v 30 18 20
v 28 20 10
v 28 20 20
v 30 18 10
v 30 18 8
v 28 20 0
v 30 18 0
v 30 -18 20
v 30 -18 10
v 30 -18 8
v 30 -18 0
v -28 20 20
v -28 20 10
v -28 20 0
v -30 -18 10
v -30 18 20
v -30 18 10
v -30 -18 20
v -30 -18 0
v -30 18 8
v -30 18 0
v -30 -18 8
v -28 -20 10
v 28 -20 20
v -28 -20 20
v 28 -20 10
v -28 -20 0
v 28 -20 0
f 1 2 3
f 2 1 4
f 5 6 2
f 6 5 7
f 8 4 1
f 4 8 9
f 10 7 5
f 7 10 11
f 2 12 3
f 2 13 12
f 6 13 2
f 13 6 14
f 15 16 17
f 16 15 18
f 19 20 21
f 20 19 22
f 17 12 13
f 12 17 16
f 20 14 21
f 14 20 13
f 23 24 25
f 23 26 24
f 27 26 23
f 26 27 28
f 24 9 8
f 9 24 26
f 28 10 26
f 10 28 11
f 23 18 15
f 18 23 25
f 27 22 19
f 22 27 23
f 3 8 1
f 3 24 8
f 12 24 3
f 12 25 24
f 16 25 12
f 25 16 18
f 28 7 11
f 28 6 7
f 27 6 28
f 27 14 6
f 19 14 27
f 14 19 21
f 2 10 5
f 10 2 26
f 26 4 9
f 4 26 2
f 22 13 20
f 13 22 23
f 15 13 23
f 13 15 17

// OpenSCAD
/* doodle-meta {"version":1,"parameters":{"width":{"label":"Overall width","description":"Changes the body width along X","unit":"mm","feature":"body_width"},"depth":{"label":"Overall depth","description":"Changes the body depth along Y","unit":"mm","feature":"body_depth"},"height":{"label":"Overall height","description":"Changes the body height along Z","unit":"mm","feature":"body_height"},"chamfer_size":{"label":"Chamfer size","description":"Size of the 45-degree chamfer on all edges","unit":"mm","feature":"chamfer"}},"features":{"body_width":{"kind":"dimension","axis":"x","label":"Overall width"},"body_depth":{"kind":"dimension","axis":"y","label":"Overall depth"},"body_height":{"kind":"dimension","axis":"z","label":"Overall height"},"chamfer":{"kind":"region","label":"Edge Chamfers","min":[0,0,0],"max":[{"parameter":"width","scale":1,"offset":0},{"parameter":"depth","scale":1,"offset":0},{"parameter":"height","scale":1,"offset":0}]}}} */

// Parameters
width = 60.0;
depth = 40.0;
height = 20.0;
chamfer_size = 2.0;

// Derived constants
eps = 0.01;

// Module for a single chamfer cutter (a triangular prism)
// The prism is oriented such that its triangular cross-section is in the XY plane
// and it extends along Z.
// It cuts the corner at (x_sign * width/2, y_sign * depth/2).
module chamfer_cutter(x_sign, y_sign) {
    // Define the triangle vertices in the local XY plane relative to the corner
    // The corner is at (x_sign * width/2, y_sign * depth/2)
    // The cut removes material inside the triangle defined by:
    // (cx, cy), (cx - x_sign*chamfer_size, cy), (cx, cy - y_sign*chamfer_size)
    
    cx = x_sign * width / 2;
    cy = y_sign * depth / 2;
    
    // Points of the triangle
    p1 = [cx, cy];
    p2 = [cx - x_sign * chamfer_size, cy];
    p3 = [cx, cy - y_sign * chamfer_size];
    
    // Create the polygon and extrude it along Z
    // We need to extend the cutter beyond the block in Z to ensure clean cuts
    translate([0, 0, -eps])
    linear_extrude(height = height + 2*eps)
    polygon([p1, p2, p3]);
}

// Module for a chamfer cutter on a horizontal edge (parallel to X or Y)
// This creates a triangular prism oriented to cut a top or bottom edge.
// axis: 0 for X-axis edge, 1 for Y-axis edge
// sign: +1 or -1 indicating which side of the block the edge is on
module edge_chamfer(axis, sign) {
    // The chamfer is a triangular prism.
    // For an edge parallel to X (axis=0), the triangle is in the YZ plane.
    // For an edge parallel to Y (axis=1), the triangle is in the XZ plane.
    
    if (axis == 0) {
        // Edge parallel to X. Triangle in YZ plane.
        // Edge is at y = sign * depth/2, z = sign * height/2 (top/bottom)
        // Wait, sign determines top/bottom (Z) and front/back (Y).
        // Let's define the triangle vertices in YZ.
        // Corner is at (y=sign_y*depth/2, z=sign_z*height/2).
        // But here 'sign' is passed as +1 for top/front, -1 for bottom/back?
        // Let's simplify: we need to cut 4 top edges and 4 bottom edges.
        
        // Let's use a generic approach: create a cube and rotate it.
        // A 45 deg chamfer can be made by cutting a corner of a cube.
        
        // Let's stick to the previous logic but generalized.
        // We need to cut the corner defined by two faces.
        
        // For Top-Front edge (Y+, Z+):
        // Triangle in YZ plane at Y=depth/2, Z=height/2.
        // Vertices: (depth/2, height/2), (depth/2 - cs, height/2), (depth/2, height/2 - cs)
        
        // Let's implement specific cutters for the 8 horizontal edges.
    }
}

// Helper to cut a corner defined by two axes and signs
// axis1, axis2: 0=X, 1=Y, 2=Z
// s1, s2: +1 or -1
module corner_chamfer_3d(axis1, axis2, s1, s2) {
    // Determine the plane of the triangle and the extrusion axis
    // The extrusion axis is the one NOT in {axis1, axis2}
    ext_axis = 3 - axis1 - axis2; // 0+1+2=3
    
    // Define the triangle in the local 2D plane of axis1, axis2
    // The corner is at (s1 * dim1/2, s2 * dim2/2)
    // The triangle vertices are:
    // (c1, c2)
    // (c1 - s1*cs, c2)
    // (c1, c2 - s2*cs)
    
    dim1 = (axis1 == 0) ? width : (axis1 == 1) ? depth : height;
    dim2 = (axis2 == 0) ? width : (axis2 == 1) ? depth : height;
    ext_dim = (ext_axis == 0) ? width : (ext_axis == 1) ? depth : height;
    
    c1 = s1 * dim1 / 2;
    c2 = s2 * dim2 / 2;
    
    p1 = [c1, c2];
    p2 = [c1 - s1 * chamfer_size, c2];
    p3 = [c1, c2 - s2 * chamfer_size];
    
    // Create polygon in XY plane (local)
    // Then rotate to align with axis1, axis2
    // Then translate to center
    // Then extrude along ext_axis
    
    // Rotation logic:
    // If ext_axis is Z (2), no rotation needed (polygon is in XY).
    // If ext_axis is Y (1), rotate X by 90. Polygon in XZ -> Y extrusion? 
    //   Standard linear_extrude is along Z.
    //   If we want extrusion along Y, we rotate the object so Z becomes Y.
    //   rotate([90, 0, 0]) maps Z to -Y? No, Z to Y?
    //   Let's just use rotate_extrude or careful rotations.
    
    // Simpler: Create the prism in a standard orientation and rotate/translate.
    // Standard: Triangle in XY, extruded along Z.
    // We want: Triangle in Plane(axis1, axis2), extruded along ext_axis.
    
    // Let's map (axis1, axis2) to (X, Y) and ext_axis to Z.
    
    // Case 1: ext_axis = Z (2). axis1, axis2 are X, Y.
    //   No rotation.
    // Case 2: ext_axis = Y (1). axis1, axis2 are X, Z.
    //   We want triangle in XZ, extruded along Y.
    //   Create triangle in XY (local), extrude along Z (local).
    //   Rotate so local Z -> global Y. rotate([90, 0, 0])? 
    //   rotate([90,0,0]) maps Y->Z, Z->-Y. So extrusion along -Y.
    //   We need to handle signs carefully.
    
    // Let's use a different approach: Minkowski difference or just explicit cutters.
    // Given the complexity of generic rotation, let's write explicit cutters for the 12 edges.
    
    // 4 Vertical Edges (parallel to Z): Triangle in XY, extrude Z.
    // 4 Top Edges (parallel to X/Y): Triangle in YZ/XZ, extrude X/Y.
    // 4 Bottom Edges (parallel to X/Y): Triangle in YZ/XZ, extrude X/Y.
}

// Explicit Cutters

// 1. Vertical Edges (4)
// Already implemented in chamfer_cutter
module vertical_chamfers() {
    chamfer_cutter(1, 1);
    chamfer_cutter(-1, 1);
    chamfer_cutter(1, -1);
    chamfer_cutter(-1, -1);
}

// 2. Top Edges (4)
// Top-Front (Y+, Z+) -> Edge parallel to X. Triangle in YZ.
module top_front_chamfer() {
    // Triangle in YZ plane.
    // Corner at Y=depth/2, Z=height/2.
    // Vertices: (depth/2, height/2), (depth/2 - cs, height/2), (depth/2, height/2 - cs)
    // Extrude along X.
    // Create polygon in XY (local), rotate to YZ, extrude along Z (local) -> X (global).
    
    // Polygon in local XY:
    // p1 = [depth/2, height/2]
    // p2 = [depth/2 - cs, height/2]
    // p3 = [depth/2, height/2 - cs]
    
    // Rotate [90, 0, 0] maps local Y to global Z, local Z to global -Y?
    // Let's use rotate([0, 90, 0])?
    // rotate([0, 90, 0]) maps local X to global Z, local Z to global -X.
    
    // Let's just use linear_extrude and rotate.
    // We want the prism axis along X.
    // So we create the triangle in YZ, and extrude along X.
    // linear_extrude extrudes along Z.
    // So we create triangle in XY, extrude along Z, then rotate so Z->X.
    // rotate([0, 90, 0]) maps Z to -X.
    // So we need to mirror or adjust.
    
    // Let's define the triangle in the plane perpendicular to X.
    // The plane is YZ.
    // We can use `rotate([0, 90, 0])` to make the extrusion direction X.
    // But the triangle coordinates need to be in the plane perpendicular to the extrusion axis.
    
    // Let's try:
    // translate([0, 0, 0])
    // rotate([0, 90, 0])
    // linear_extrude(height=width+2*eps)
    // polygon(...)
    
    // If we rotate([0, 90, 0]), the local Z becomes global -X.
    // The local XY plane becomes global ZY plane?
    // Local X -> Global Z. Local Y -> Global Y.
    // So the polygon is in Global ZY.
    // We want the triangle in YZ.
    // So we define points in (Y, Z) coordinates?
    // If local X maps to Global Z, and local Y maps to Global Y.
    // Then point (x, y) in polygon becomes (y, x) in (Y, Z)?
    // Let's verify.
    // rotate([0, 90, 0]) * [x, y, z] = [z, y, -x].
    // So local (x, y, 0) -> global (0, y, -x).
    // So local X is Global -Z. Local Y is Global Y.
    // So polygon in local XY maps to Global YZ (with Z flipped).
    
    // We want triangle at Y=depth/2, Z=height/2.
    // Vertices in Global YZ:
    // (depth/2, height/2)
    // (depth/2 - cs, height/2)
    // (depth/2, height/2 - cs)
    
    // Map to Local XY:
    // Global Y = Local Y.
    // Global Z = -Local X.
    // So Local X = -Global Z.
    
    // p1: Y=depth/2, Z=height/2 -> Local ( -height/2, depth/2 )
    // p2: Y=depth/2-cs, Z=height/2 -> Local ( -height/2, depth/2-cs )
    // p3: Y=depth/2, Z=height/2-cs -> Local ( -(height/2-cs), depth/2 )
    
    // Extrude along Local Z (which is Global -X).
    // We need to cover the whole width.
    // Translate to center X.
    
    translate([width/2 + eps, 0, 0]) // Start from +X side?
    // If extrusion is along -X, we start at +X and go to -X.
    // So translate to +X end.
    
    rotate([0, 90, 0])
    translate([0, 0, -eps]) // Extend in local Z (global -X)
    linear_extrude(height = width + 2*eps)
    polygon([
        [-height/2, depth/2],
        [-height/2, depth/2 - chamfer_size],
        [-(height/2 - chamfer_size), depth/2]
    ]);
}

// Top-Back (Y-, Z+) -> Edge parallel to X.
module top_back_chamfer() {
    // Corner at Y=-depth/2, Z=height/2.
    // Vertices in Global YZ:
    // (-depth/2, height/2)
    // (-depth/2 + cs, height/2)
    // (-depth/2, height/2 - cs)
    
    // Map to Local XY (Local X = -Global Z, Local Y = Global Y)
    // p1: (-height/2, -depth/2)
    // p2: (-height/2, -depth/2 + cs)
    // p3: (-(height/2 - cs), -depth/2)
    
    translate([width/2 + eps, 0, 0])
    rotate([0, 90, 0])
    translate([0, 0, -eps])
    linear_extrude(height = width + 2*eps)
    polygon([
        [-height/2, -depth/2],
        [-height/2, -depth/2 + chamfer_size],
        [-(height/2 - chamfer_size), -depth/2]
    ]);
}

// Top-Right (X+, Z+) -> Edge parallel to Y.
module top_right_chamfer() {
    // Corner at X=width/2, Z=height/2.
    // Vertices in Global XZ:
    // (width/2, height/2)
    // (width/2 - cs, height/2)
    // (width/2, height/2 - cs)
    
    // Extrude along Y.
    // Rotate so Z->Y. rotate([90, 0, 0]) maps Z->-Y?
    // rotate([90, 0, 0]) * [x, y, z] = [x, -z, y].
    // Local Z -> Global Y.
    // Local X -> Global X. Local Y -> Global -Z.
    // So polygon in Local XY maps to Global X(-Z).
    // We want triangle in XZ.
    // Global X = Local X. Global Z = -Local Y.
    
    // p1: (width/2, height/2) -> Local (width/2, -height/2)
    // p2: (width/2 - cs, height/2) -> Local (width/2 - cs, -height/2)
    // p3: (width/2, height/2 - cs) -> Local (width/2, -(height/2 - cs))
    
    // Extrude along Local Z (Global Y).
    // Translate to +Y end.
    
    translate([0, depth/2 + eps, 0])
    rotate([90, 0, 0])
    translate([0, 0, -eps])
    linear_extrude(height = depth + 2*eps)
    polygon([
        [width/2, -height/2],
        [width/2 - chamfer_size, -height/2],
        [width/2, -(height/2 - chamfer_size)]
    ]);
}

// Top-Left (X-, Z+) -> Edge parallel to Y.
module top_left_chamfer() {
    // Corner at X=-width/2, Z=height/2.
    // Vertices in Global XZ:
    // (-width/2, height/2)
    // (-width/2 + cs, height/2)
    // (-width/2, height/2 - cs)
    
    // Map to Local XY (Local X = Global X, Local Y = -Global Z)
    // p1: (-width/2, -height/2)
    // p2: (-width/2 + cs, -height/2)
    // p3: (-width/2, -(height/2 - cs))
    
    translate([0, depth/2 + eps, 0])
    rotate([90, 0, 0])
    translate([0, 0, -eps])
    linear_extrude(height = depth + 2*eps)
    polygon([
        [-width/2, -height/2],
        [-width/2 + chamfer_size, -height/2],
        [-width/2, -(height/2 - chamfer_size)]
    ]);
}

// Bottom Edges (4)
// Bottom-Front (Y+, Z-)
module bottom_front_chamfer() {
    // Corner at Y=depth/2, Z=-height/2.
    // Vertices in Global YZ:
    // (depth/2, -height/2)
    // (depth/2 - cs, -height/2)
    // (depth/2, -height/2 + cs)
    
    // Map to Local XY (Local X = -Global Z, Local Y = Global Y)
    // p1: (height/2, depth/2)
    // p2: (height/2, depth/2 - cs)
    // p3: (height/2 - cs, depth/2)
    
    translate([width/2 + eps, 0, 0])
    rotate([0, 90, 0])
    translate([0, 0, -eps])
    linear_extrude(height = width + 2*eps)
    polygon([
        [height/2, depth/2],
        [height/2, depth/2 - chamfer_size],
        [height/2 - chamfer_size, depth/2]
    ]);
}

// Bottom-Back (Y-, Z-)
module bottom_back_chamfer() {
    // Corner at Y=-depth/2, Z=-height/2.
    // Vertices in Global YZ:
    // (-depth/2, -height/2)
    // (-depth/2 + cs, -height/2)
    // (-depth/2, -height/2 + cs)
    
    // Map to Local XY
    // p1: (height/2, -depth/2)
    // p2: (height/2, -depth/2 + cs)
    // p3: (height/2 - cs, -depth/2)
    
    translate([width/2 + eps, 0, 0])
    rotate([0, 90, 0])
    translate([0, 0, -eps])
    linear_extrude(height = width + 2*eps)
    polygon([
        [height/2, -depth/2],
        [height/2, -depth/2 + chamfer_size],
        [height/2 - chamfer_size, -depth/2]
    ]);
}

// Bottom-Right (X+, Z-)
module bottom_right_chamfer() {
    // Corner at X=width/2, Z=-height/2.
    // Vertices in Global XZ:
    // (width/2, -height/2)
    // (width/2 - cs, -height/2)
    // (width/2, -height/2 + cs)
    
    // Map to Local XY (Local X = Global X, Local Y = -Global Z)
    // p1: (width/2, height/2)
    // p2: (width/2 - cs, height/2)
    // p3: (width/2, height/2 - cs)
    
    // Extrude along Local Z (Global Y).
    // Translate to +Y end.
    
    translate([0, depth/2 + eps, 0])
    rotate([90, 0, 0])
    translate([0, 0, -eps])
    linear_extrude(height = depth + 2*eps)
    polygon([
        [width/2, height/2],
        [width/2 - chamfer_size, height/2],
        [width/2, height/2 - chamfer_size]
    ]);
}

// Bottom-Left (X-, Z-)
module bottom_left_chamfer() {
    // Corner at X=-width/2, Z=-height/2.
    // Vertices in Global XZ:
    // (-width/2, -height/2)
    // (-width/2 + cs, -height/2)
    // (-width/2, -height/2 + cs)
    
    // Map to Local XY
    // p1: (-width/2, height/2)
    // p2: (-width/2 + cs, height/2)
    // p3: (-width/2, height/2 - cs)
    
    translate([0, depth/2 + eps, 0])
    rotate([90, 0, 0])
    translate([0, 0, -eps])
    linear_extrude(height = depth + 2*eps)
    polygon([
        [-width/2, height/2],
        [-width/2 + chamfer_size, height/2],
        [-width/2, height/2 - chamfer_size]
    ]);
}

// Main design
difference() {
    // Base block
    translate([0, 0, height/2])
    cube([width, depth, height], center=true);
    
    // Subtract all 12 chamfers
    vertical_chamfers();
    
    top_front_chamfer();
    top_back_chamfer();
    top_right_chamfer();
    top_left_chamfer();
    
    bottom_front_chamfer();
    bottom_back_chamfer();
    bottom_right_chamfer();
    bottom_left_chamfer();
}
